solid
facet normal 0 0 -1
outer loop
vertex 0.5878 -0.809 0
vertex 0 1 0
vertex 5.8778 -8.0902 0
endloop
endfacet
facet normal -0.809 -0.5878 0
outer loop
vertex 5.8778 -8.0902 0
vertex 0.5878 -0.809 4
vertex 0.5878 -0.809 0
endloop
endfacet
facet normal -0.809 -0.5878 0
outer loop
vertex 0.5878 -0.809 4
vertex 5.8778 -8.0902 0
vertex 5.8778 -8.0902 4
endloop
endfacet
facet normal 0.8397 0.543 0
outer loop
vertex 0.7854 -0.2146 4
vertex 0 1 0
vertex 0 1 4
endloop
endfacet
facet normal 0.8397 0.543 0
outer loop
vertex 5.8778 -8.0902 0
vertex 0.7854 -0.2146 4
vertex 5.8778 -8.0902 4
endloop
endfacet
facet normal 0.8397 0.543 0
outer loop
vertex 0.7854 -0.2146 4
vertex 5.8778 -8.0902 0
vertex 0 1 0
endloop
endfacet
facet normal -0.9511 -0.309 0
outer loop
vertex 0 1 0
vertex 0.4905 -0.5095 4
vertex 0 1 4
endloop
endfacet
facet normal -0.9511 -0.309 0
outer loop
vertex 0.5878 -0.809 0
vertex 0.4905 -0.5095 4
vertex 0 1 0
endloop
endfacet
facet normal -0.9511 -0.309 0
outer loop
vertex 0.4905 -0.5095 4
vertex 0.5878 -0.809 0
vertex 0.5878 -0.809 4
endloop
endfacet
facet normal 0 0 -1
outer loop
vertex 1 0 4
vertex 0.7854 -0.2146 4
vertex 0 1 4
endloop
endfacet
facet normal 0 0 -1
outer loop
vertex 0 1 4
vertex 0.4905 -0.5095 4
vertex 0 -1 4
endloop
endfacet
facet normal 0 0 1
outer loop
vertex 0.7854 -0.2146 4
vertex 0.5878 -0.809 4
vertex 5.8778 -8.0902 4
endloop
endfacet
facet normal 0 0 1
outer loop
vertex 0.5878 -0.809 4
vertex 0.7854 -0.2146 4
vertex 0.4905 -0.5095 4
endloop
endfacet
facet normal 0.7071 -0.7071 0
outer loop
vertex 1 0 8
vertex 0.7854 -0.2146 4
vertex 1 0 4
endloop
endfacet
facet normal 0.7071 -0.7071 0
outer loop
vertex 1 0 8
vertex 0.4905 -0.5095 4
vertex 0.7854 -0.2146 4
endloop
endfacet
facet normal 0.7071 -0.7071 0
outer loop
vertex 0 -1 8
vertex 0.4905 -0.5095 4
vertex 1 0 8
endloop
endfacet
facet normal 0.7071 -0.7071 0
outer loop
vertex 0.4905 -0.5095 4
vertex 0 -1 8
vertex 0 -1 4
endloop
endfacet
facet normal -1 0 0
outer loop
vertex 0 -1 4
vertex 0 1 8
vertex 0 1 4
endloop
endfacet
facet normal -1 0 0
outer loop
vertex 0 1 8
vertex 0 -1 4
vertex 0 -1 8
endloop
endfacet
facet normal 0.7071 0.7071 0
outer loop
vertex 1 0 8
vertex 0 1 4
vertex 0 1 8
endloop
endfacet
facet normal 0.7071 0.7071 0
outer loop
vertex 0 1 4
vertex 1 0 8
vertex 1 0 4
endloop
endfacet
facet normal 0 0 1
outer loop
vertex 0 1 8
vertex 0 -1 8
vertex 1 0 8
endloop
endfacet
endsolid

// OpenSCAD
union() {
	translate(v = [0, 0, 0]) {
		linear_extrude(height = 4) {
			polygon(paths = [[0, 1, 2, 3, 4]], points = [[0.951056516295, 0.309016994375], [0.587785252292, -0.809016994375], [-1.22464679915e-15, 1.0], [5.87785252292, -8.09016994375], [0.587785252292, -0.809016994375]]);
		}
	}
	translate(v = [0, 0, 4]) {
		linear_extrude(height = 4) {
			polygon(paths = [[0, 1, 2, 3]], points = [[-7.34788079488e-16, 1.0], [1.0, -7.35407060125e-16], [6.36940131684e-15, -1.0], [-4.91096680932e-16, -1.0]]);
		}
	}
	translate(v = [0, 0, 8]) {
		linear_extrude(height = 4) {
			polygon(paths = [[0, 1, 2, 3, 4, 5, 6, 7, 8, 9]], points = [[-0.587785252292, -0.809016994375], [-0.951056516295, 0.309016994375], [-5.87785252292, 8.09016994375], [-7.34788079488e-16, 1.0], [0.951056516295, -0.309016994375], [0.587785252292, -0.809016994375], [-11.7557050458, -16.1803398875], [0.587785252292, 0.809016994375], [9.51056516295, 3.09016994375], [-9.51056516295, -3.09016994375]]);
		}
	}
	translate(v = [0, 0, 12]) {
		linear_extrude(height = 4) {
			polygon(paths = [[0, 1, 2, 3, 4, 5, 6, 7, 8, 9, 10]], points = [[0.989821441881, -0.142314838273], [-0.281732556841, -0.959492973614], [0.755749574354, -0.654860733945], [0.281732556841, -0.959492973614], [5.40640817456, 8.41253532831], [-0.281732556841, -0.959492973614], [-0.989821441881, -0.142314838273], [-5.40640817456, 8.41253532831], [9.09631995355, 4.15415013002], [0.989821441881, -0.142314838273], [0.281732556841, -0.959492973614]]);
		}
	}
}
